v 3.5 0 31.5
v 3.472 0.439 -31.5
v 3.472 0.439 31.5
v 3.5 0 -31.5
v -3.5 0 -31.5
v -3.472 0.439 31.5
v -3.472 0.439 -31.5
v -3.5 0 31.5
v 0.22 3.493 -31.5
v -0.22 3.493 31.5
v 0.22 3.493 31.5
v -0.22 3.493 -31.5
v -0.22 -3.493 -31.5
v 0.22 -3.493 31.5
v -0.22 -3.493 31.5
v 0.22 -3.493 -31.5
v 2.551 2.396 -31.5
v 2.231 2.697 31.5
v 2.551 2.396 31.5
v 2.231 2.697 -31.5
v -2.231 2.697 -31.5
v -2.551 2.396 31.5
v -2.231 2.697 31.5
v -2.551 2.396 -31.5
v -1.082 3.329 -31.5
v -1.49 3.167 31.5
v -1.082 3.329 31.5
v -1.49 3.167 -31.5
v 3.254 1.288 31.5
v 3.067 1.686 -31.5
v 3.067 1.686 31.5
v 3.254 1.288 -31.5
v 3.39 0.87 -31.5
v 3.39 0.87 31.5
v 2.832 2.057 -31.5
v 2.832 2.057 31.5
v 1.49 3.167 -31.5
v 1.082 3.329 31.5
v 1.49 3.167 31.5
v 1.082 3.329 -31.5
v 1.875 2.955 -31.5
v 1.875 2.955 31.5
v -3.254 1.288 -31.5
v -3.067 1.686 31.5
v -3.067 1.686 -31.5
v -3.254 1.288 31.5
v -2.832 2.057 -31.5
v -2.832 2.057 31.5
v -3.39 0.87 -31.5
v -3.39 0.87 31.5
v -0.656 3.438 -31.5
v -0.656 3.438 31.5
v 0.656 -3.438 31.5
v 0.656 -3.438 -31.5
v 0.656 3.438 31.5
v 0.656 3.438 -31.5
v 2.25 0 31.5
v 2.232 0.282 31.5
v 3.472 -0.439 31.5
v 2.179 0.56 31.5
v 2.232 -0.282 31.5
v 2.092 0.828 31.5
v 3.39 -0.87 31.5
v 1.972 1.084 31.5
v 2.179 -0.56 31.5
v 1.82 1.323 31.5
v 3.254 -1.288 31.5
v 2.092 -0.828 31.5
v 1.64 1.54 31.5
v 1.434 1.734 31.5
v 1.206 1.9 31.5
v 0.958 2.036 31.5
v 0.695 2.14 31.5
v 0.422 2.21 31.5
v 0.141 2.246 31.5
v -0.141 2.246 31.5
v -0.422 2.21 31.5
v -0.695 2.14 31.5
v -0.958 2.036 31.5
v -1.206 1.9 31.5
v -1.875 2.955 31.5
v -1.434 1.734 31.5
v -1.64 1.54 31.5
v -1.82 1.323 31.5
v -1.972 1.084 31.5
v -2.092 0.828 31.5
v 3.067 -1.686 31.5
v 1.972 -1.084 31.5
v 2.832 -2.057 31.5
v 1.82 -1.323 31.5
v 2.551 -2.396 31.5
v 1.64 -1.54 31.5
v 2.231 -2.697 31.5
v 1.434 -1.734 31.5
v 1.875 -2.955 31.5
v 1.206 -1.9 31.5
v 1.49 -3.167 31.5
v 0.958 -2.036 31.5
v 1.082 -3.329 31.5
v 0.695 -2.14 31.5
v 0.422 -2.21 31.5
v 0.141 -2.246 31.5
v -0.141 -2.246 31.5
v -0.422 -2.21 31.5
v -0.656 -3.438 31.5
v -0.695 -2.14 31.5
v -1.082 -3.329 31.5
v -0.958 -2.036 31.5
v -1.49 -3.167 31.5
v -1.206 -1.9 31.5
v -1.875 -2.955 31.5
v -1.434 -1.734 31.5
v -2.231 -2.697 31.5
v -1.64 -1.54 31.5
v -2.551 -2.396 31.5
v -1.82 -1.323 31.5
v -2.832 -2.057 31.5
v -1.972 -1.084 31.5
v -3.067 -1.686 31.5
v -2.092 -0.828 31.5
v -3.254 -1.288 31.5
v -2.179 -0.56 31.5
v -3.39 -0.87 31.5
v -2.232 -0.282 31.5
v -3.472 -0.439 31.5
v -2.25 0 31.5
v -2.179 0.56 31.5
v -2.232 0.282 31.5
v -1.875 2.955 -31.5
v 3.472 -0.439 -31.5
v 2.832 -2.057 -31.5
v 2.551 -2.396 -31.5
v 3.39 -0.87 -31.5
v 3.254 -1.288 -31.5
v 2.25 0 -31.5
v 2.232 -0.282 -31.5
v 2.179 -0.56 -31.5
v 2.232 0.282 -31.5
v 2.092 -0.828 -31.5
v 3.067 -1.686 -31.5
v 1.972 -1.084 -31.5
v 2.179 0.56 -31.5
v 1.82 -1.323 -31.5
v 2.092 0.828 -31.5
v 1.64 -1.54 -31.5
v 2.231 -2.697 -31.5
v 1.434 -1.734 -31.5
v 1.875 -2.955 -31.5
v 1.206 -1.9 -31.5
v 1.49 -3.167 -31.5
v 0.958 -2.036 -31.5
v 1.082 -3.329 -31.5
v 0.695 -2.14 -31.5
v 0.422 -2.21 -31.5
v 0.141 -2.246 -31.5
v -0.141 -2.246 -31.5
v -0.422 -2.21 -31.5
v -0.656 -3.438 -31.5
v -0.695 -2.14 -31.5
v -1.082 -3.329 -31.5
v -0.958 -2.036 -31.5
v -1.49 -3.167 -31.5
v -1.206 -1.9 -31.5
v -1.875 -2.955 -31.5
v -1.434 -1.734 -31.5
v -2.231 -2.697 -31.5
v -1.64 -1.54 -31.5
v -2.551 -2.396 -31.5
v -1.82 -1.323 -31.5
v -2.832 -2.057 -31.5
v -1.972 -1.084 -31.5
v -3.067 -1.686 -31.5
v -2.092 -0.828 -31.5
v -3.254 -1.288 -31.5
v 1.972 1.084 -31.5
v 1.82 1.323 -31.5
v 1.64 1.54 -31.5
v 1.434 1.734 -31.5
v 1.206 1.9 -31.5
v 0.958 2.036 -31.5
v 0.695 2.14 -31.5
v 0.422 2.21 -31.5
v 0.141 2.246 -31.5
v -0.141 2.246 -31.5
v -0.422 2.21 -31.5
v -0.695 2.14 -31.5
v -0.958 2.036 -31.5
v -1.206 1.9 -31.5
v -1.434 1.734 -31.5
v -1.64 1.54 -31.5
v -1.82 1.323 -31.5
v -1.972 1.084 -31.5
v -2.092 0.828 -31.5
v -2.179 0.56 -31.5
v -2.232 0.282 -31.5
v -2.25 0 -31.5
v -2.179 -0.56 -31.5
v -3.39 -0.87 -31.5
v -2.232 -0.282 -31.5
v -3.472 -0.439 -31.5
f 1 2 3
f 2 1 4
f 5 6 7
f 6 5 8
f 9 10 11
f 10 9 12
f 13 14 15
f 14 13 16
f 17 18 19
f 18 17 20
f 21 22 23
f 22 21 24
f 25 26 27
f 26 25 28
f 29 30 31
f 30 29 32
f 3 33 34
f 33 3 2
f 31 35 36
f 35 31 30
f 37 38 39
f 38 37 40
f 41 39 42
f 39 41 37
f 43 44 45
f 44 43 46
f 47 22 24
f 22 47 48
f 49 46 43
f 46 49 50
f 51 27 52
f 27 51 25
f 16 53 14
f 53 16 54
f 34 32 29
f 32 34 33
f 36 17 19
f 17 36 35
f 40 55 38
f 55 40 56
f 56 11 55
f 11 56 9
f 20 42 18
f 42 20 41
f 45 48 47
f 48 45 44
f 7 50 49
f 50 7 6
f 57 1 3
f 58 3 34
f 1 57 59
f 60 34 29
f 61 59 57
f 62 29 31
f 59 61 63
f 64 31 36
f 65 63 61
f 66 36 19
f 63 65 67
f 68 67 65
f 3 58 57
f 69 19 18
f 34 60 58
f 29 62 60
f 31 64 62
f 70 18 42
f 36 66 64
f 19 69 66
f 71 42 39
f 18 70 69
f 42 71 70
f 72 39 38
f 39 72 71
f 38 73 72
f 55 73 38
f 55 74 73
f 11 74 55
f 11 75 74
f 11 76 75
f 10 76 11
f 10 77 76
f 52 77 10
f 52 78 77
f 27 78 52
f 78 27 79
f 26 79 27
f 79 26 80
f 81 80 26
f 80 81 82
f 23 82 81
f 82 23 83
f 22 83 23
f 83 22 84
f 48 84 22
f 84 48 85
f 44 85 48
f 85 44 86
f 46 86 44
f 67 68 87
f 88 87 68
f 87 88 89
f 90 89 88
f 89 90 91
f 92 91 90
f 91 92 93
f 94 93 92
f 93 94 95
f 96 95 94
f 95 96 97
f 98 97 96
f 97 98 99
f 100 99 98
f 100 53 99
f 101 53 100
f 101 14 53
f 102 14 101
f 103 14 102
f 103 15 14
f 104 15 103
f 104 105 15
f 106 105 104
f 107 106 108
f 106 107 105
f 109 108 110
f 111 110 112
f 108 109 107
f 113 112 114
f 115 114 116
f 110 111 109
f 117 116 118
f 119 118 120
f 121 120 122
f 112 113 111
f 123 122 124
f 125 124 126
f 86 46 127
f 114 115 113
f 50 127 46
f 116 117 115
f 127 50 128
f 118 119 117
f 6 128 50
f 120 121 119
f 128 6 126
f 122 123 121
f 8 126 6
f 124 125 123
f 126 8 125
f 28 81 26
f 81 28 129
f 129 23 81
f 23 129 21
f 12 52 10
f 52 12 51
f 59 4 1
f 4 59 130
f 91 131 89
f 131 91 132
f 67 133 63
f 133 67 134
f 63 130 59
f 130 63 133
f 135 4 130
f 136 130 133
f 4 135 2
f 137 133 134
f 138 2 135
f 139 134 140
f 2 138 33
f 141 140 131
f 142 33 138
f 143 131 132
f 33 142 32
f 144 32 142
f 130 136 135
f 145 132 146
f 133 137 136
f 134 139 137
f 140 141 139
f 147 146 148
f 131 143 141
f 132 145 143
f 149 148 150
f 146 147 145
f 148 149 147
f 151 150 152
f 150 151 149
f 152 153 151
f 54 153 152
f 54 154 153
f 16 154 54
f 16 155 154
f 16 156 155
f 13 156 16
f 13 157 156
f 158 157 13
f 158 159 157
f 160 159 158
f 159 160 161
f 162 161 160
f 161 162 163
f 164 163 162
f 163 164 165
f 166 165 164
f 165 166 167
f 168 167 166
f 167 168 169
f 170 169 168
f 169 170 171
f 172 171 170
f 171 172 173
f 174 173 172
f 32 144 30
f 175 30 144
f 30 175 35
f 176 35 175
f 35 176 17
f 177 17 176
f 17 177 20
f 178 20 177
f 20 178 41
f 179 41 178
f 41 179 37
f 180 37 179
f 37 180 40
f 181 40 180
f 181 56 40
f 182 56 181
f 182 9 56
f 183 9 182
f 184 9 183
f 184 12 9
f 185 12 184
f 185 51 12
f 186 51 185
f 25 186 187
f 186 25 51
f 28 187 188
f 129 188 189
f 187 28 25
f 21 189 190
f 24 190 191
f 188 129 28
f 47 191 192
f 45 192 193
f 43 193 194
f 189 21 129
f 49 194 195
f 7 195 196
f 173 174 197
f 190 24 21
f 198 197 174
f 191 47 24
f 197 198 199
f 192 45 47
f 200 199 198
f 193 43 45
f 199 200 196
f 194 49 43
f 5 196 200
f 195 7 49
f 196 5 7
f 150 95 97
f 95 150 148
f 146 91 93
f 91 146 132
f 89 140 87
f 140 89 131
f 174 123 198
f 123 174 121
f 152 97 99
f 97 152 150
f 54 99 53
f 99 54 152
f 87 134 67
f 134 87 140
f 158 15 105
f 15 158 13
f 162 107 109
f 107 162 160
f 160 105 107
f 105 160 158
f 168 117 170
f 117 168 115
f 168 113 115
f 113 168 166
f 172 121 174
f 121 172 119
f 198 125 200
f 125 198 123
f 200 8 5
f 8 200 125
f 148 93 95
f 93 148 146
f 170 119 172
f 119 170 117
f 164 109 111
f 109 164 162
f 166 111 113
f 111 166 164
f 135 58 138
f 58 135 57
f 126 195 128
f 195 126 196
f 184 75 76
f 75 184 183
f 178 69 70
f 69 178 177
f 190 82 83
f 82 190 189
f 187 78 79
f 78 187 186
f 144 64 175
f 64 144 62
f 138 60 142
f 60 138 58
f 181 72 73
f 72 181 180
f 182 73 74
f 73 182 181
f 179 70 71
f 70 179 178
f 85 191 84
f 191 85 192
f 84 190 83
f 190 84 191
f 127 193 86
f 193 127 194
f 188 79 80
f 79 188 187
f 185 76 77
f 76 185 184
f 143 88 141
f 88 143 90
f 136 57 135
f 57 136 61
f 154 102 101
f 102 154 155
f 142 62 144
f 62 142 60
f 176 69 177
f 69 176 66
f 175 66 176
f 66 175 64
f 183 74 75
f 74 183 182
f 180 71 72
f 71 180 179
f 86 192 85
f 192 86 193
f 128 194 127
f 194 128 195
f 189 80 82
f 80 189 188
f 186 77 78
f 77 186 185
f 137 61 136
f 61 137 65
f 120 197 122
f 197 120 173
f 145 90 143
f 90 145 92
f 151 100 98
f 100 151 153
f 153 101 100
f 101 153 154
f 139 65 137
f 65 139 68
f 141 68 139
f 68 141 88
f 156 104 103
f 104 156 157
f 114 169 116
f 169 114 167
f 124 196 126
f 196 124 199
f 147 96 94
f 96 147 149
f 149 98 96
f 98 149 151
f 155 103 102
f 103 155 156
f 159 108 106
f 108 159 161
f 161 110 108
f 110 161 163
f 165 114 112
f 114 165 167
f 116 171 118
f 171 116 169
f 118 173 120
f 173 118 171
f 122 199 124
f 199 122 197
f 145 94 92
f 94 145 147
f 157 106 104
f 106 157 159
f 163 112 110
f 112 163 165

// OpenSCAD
$fn = 50;


difference() {
	union() {
		translate(v = [0, 0, -31.5000000000]) {
			cylinder(h = 63, r = 3.5000000000);
		}
	}
	union() {
		translate(v = [0, 0, -100.0000000000]) {
			cylinder(h = 200, r = 2.2500000000);
		}
	}
}
